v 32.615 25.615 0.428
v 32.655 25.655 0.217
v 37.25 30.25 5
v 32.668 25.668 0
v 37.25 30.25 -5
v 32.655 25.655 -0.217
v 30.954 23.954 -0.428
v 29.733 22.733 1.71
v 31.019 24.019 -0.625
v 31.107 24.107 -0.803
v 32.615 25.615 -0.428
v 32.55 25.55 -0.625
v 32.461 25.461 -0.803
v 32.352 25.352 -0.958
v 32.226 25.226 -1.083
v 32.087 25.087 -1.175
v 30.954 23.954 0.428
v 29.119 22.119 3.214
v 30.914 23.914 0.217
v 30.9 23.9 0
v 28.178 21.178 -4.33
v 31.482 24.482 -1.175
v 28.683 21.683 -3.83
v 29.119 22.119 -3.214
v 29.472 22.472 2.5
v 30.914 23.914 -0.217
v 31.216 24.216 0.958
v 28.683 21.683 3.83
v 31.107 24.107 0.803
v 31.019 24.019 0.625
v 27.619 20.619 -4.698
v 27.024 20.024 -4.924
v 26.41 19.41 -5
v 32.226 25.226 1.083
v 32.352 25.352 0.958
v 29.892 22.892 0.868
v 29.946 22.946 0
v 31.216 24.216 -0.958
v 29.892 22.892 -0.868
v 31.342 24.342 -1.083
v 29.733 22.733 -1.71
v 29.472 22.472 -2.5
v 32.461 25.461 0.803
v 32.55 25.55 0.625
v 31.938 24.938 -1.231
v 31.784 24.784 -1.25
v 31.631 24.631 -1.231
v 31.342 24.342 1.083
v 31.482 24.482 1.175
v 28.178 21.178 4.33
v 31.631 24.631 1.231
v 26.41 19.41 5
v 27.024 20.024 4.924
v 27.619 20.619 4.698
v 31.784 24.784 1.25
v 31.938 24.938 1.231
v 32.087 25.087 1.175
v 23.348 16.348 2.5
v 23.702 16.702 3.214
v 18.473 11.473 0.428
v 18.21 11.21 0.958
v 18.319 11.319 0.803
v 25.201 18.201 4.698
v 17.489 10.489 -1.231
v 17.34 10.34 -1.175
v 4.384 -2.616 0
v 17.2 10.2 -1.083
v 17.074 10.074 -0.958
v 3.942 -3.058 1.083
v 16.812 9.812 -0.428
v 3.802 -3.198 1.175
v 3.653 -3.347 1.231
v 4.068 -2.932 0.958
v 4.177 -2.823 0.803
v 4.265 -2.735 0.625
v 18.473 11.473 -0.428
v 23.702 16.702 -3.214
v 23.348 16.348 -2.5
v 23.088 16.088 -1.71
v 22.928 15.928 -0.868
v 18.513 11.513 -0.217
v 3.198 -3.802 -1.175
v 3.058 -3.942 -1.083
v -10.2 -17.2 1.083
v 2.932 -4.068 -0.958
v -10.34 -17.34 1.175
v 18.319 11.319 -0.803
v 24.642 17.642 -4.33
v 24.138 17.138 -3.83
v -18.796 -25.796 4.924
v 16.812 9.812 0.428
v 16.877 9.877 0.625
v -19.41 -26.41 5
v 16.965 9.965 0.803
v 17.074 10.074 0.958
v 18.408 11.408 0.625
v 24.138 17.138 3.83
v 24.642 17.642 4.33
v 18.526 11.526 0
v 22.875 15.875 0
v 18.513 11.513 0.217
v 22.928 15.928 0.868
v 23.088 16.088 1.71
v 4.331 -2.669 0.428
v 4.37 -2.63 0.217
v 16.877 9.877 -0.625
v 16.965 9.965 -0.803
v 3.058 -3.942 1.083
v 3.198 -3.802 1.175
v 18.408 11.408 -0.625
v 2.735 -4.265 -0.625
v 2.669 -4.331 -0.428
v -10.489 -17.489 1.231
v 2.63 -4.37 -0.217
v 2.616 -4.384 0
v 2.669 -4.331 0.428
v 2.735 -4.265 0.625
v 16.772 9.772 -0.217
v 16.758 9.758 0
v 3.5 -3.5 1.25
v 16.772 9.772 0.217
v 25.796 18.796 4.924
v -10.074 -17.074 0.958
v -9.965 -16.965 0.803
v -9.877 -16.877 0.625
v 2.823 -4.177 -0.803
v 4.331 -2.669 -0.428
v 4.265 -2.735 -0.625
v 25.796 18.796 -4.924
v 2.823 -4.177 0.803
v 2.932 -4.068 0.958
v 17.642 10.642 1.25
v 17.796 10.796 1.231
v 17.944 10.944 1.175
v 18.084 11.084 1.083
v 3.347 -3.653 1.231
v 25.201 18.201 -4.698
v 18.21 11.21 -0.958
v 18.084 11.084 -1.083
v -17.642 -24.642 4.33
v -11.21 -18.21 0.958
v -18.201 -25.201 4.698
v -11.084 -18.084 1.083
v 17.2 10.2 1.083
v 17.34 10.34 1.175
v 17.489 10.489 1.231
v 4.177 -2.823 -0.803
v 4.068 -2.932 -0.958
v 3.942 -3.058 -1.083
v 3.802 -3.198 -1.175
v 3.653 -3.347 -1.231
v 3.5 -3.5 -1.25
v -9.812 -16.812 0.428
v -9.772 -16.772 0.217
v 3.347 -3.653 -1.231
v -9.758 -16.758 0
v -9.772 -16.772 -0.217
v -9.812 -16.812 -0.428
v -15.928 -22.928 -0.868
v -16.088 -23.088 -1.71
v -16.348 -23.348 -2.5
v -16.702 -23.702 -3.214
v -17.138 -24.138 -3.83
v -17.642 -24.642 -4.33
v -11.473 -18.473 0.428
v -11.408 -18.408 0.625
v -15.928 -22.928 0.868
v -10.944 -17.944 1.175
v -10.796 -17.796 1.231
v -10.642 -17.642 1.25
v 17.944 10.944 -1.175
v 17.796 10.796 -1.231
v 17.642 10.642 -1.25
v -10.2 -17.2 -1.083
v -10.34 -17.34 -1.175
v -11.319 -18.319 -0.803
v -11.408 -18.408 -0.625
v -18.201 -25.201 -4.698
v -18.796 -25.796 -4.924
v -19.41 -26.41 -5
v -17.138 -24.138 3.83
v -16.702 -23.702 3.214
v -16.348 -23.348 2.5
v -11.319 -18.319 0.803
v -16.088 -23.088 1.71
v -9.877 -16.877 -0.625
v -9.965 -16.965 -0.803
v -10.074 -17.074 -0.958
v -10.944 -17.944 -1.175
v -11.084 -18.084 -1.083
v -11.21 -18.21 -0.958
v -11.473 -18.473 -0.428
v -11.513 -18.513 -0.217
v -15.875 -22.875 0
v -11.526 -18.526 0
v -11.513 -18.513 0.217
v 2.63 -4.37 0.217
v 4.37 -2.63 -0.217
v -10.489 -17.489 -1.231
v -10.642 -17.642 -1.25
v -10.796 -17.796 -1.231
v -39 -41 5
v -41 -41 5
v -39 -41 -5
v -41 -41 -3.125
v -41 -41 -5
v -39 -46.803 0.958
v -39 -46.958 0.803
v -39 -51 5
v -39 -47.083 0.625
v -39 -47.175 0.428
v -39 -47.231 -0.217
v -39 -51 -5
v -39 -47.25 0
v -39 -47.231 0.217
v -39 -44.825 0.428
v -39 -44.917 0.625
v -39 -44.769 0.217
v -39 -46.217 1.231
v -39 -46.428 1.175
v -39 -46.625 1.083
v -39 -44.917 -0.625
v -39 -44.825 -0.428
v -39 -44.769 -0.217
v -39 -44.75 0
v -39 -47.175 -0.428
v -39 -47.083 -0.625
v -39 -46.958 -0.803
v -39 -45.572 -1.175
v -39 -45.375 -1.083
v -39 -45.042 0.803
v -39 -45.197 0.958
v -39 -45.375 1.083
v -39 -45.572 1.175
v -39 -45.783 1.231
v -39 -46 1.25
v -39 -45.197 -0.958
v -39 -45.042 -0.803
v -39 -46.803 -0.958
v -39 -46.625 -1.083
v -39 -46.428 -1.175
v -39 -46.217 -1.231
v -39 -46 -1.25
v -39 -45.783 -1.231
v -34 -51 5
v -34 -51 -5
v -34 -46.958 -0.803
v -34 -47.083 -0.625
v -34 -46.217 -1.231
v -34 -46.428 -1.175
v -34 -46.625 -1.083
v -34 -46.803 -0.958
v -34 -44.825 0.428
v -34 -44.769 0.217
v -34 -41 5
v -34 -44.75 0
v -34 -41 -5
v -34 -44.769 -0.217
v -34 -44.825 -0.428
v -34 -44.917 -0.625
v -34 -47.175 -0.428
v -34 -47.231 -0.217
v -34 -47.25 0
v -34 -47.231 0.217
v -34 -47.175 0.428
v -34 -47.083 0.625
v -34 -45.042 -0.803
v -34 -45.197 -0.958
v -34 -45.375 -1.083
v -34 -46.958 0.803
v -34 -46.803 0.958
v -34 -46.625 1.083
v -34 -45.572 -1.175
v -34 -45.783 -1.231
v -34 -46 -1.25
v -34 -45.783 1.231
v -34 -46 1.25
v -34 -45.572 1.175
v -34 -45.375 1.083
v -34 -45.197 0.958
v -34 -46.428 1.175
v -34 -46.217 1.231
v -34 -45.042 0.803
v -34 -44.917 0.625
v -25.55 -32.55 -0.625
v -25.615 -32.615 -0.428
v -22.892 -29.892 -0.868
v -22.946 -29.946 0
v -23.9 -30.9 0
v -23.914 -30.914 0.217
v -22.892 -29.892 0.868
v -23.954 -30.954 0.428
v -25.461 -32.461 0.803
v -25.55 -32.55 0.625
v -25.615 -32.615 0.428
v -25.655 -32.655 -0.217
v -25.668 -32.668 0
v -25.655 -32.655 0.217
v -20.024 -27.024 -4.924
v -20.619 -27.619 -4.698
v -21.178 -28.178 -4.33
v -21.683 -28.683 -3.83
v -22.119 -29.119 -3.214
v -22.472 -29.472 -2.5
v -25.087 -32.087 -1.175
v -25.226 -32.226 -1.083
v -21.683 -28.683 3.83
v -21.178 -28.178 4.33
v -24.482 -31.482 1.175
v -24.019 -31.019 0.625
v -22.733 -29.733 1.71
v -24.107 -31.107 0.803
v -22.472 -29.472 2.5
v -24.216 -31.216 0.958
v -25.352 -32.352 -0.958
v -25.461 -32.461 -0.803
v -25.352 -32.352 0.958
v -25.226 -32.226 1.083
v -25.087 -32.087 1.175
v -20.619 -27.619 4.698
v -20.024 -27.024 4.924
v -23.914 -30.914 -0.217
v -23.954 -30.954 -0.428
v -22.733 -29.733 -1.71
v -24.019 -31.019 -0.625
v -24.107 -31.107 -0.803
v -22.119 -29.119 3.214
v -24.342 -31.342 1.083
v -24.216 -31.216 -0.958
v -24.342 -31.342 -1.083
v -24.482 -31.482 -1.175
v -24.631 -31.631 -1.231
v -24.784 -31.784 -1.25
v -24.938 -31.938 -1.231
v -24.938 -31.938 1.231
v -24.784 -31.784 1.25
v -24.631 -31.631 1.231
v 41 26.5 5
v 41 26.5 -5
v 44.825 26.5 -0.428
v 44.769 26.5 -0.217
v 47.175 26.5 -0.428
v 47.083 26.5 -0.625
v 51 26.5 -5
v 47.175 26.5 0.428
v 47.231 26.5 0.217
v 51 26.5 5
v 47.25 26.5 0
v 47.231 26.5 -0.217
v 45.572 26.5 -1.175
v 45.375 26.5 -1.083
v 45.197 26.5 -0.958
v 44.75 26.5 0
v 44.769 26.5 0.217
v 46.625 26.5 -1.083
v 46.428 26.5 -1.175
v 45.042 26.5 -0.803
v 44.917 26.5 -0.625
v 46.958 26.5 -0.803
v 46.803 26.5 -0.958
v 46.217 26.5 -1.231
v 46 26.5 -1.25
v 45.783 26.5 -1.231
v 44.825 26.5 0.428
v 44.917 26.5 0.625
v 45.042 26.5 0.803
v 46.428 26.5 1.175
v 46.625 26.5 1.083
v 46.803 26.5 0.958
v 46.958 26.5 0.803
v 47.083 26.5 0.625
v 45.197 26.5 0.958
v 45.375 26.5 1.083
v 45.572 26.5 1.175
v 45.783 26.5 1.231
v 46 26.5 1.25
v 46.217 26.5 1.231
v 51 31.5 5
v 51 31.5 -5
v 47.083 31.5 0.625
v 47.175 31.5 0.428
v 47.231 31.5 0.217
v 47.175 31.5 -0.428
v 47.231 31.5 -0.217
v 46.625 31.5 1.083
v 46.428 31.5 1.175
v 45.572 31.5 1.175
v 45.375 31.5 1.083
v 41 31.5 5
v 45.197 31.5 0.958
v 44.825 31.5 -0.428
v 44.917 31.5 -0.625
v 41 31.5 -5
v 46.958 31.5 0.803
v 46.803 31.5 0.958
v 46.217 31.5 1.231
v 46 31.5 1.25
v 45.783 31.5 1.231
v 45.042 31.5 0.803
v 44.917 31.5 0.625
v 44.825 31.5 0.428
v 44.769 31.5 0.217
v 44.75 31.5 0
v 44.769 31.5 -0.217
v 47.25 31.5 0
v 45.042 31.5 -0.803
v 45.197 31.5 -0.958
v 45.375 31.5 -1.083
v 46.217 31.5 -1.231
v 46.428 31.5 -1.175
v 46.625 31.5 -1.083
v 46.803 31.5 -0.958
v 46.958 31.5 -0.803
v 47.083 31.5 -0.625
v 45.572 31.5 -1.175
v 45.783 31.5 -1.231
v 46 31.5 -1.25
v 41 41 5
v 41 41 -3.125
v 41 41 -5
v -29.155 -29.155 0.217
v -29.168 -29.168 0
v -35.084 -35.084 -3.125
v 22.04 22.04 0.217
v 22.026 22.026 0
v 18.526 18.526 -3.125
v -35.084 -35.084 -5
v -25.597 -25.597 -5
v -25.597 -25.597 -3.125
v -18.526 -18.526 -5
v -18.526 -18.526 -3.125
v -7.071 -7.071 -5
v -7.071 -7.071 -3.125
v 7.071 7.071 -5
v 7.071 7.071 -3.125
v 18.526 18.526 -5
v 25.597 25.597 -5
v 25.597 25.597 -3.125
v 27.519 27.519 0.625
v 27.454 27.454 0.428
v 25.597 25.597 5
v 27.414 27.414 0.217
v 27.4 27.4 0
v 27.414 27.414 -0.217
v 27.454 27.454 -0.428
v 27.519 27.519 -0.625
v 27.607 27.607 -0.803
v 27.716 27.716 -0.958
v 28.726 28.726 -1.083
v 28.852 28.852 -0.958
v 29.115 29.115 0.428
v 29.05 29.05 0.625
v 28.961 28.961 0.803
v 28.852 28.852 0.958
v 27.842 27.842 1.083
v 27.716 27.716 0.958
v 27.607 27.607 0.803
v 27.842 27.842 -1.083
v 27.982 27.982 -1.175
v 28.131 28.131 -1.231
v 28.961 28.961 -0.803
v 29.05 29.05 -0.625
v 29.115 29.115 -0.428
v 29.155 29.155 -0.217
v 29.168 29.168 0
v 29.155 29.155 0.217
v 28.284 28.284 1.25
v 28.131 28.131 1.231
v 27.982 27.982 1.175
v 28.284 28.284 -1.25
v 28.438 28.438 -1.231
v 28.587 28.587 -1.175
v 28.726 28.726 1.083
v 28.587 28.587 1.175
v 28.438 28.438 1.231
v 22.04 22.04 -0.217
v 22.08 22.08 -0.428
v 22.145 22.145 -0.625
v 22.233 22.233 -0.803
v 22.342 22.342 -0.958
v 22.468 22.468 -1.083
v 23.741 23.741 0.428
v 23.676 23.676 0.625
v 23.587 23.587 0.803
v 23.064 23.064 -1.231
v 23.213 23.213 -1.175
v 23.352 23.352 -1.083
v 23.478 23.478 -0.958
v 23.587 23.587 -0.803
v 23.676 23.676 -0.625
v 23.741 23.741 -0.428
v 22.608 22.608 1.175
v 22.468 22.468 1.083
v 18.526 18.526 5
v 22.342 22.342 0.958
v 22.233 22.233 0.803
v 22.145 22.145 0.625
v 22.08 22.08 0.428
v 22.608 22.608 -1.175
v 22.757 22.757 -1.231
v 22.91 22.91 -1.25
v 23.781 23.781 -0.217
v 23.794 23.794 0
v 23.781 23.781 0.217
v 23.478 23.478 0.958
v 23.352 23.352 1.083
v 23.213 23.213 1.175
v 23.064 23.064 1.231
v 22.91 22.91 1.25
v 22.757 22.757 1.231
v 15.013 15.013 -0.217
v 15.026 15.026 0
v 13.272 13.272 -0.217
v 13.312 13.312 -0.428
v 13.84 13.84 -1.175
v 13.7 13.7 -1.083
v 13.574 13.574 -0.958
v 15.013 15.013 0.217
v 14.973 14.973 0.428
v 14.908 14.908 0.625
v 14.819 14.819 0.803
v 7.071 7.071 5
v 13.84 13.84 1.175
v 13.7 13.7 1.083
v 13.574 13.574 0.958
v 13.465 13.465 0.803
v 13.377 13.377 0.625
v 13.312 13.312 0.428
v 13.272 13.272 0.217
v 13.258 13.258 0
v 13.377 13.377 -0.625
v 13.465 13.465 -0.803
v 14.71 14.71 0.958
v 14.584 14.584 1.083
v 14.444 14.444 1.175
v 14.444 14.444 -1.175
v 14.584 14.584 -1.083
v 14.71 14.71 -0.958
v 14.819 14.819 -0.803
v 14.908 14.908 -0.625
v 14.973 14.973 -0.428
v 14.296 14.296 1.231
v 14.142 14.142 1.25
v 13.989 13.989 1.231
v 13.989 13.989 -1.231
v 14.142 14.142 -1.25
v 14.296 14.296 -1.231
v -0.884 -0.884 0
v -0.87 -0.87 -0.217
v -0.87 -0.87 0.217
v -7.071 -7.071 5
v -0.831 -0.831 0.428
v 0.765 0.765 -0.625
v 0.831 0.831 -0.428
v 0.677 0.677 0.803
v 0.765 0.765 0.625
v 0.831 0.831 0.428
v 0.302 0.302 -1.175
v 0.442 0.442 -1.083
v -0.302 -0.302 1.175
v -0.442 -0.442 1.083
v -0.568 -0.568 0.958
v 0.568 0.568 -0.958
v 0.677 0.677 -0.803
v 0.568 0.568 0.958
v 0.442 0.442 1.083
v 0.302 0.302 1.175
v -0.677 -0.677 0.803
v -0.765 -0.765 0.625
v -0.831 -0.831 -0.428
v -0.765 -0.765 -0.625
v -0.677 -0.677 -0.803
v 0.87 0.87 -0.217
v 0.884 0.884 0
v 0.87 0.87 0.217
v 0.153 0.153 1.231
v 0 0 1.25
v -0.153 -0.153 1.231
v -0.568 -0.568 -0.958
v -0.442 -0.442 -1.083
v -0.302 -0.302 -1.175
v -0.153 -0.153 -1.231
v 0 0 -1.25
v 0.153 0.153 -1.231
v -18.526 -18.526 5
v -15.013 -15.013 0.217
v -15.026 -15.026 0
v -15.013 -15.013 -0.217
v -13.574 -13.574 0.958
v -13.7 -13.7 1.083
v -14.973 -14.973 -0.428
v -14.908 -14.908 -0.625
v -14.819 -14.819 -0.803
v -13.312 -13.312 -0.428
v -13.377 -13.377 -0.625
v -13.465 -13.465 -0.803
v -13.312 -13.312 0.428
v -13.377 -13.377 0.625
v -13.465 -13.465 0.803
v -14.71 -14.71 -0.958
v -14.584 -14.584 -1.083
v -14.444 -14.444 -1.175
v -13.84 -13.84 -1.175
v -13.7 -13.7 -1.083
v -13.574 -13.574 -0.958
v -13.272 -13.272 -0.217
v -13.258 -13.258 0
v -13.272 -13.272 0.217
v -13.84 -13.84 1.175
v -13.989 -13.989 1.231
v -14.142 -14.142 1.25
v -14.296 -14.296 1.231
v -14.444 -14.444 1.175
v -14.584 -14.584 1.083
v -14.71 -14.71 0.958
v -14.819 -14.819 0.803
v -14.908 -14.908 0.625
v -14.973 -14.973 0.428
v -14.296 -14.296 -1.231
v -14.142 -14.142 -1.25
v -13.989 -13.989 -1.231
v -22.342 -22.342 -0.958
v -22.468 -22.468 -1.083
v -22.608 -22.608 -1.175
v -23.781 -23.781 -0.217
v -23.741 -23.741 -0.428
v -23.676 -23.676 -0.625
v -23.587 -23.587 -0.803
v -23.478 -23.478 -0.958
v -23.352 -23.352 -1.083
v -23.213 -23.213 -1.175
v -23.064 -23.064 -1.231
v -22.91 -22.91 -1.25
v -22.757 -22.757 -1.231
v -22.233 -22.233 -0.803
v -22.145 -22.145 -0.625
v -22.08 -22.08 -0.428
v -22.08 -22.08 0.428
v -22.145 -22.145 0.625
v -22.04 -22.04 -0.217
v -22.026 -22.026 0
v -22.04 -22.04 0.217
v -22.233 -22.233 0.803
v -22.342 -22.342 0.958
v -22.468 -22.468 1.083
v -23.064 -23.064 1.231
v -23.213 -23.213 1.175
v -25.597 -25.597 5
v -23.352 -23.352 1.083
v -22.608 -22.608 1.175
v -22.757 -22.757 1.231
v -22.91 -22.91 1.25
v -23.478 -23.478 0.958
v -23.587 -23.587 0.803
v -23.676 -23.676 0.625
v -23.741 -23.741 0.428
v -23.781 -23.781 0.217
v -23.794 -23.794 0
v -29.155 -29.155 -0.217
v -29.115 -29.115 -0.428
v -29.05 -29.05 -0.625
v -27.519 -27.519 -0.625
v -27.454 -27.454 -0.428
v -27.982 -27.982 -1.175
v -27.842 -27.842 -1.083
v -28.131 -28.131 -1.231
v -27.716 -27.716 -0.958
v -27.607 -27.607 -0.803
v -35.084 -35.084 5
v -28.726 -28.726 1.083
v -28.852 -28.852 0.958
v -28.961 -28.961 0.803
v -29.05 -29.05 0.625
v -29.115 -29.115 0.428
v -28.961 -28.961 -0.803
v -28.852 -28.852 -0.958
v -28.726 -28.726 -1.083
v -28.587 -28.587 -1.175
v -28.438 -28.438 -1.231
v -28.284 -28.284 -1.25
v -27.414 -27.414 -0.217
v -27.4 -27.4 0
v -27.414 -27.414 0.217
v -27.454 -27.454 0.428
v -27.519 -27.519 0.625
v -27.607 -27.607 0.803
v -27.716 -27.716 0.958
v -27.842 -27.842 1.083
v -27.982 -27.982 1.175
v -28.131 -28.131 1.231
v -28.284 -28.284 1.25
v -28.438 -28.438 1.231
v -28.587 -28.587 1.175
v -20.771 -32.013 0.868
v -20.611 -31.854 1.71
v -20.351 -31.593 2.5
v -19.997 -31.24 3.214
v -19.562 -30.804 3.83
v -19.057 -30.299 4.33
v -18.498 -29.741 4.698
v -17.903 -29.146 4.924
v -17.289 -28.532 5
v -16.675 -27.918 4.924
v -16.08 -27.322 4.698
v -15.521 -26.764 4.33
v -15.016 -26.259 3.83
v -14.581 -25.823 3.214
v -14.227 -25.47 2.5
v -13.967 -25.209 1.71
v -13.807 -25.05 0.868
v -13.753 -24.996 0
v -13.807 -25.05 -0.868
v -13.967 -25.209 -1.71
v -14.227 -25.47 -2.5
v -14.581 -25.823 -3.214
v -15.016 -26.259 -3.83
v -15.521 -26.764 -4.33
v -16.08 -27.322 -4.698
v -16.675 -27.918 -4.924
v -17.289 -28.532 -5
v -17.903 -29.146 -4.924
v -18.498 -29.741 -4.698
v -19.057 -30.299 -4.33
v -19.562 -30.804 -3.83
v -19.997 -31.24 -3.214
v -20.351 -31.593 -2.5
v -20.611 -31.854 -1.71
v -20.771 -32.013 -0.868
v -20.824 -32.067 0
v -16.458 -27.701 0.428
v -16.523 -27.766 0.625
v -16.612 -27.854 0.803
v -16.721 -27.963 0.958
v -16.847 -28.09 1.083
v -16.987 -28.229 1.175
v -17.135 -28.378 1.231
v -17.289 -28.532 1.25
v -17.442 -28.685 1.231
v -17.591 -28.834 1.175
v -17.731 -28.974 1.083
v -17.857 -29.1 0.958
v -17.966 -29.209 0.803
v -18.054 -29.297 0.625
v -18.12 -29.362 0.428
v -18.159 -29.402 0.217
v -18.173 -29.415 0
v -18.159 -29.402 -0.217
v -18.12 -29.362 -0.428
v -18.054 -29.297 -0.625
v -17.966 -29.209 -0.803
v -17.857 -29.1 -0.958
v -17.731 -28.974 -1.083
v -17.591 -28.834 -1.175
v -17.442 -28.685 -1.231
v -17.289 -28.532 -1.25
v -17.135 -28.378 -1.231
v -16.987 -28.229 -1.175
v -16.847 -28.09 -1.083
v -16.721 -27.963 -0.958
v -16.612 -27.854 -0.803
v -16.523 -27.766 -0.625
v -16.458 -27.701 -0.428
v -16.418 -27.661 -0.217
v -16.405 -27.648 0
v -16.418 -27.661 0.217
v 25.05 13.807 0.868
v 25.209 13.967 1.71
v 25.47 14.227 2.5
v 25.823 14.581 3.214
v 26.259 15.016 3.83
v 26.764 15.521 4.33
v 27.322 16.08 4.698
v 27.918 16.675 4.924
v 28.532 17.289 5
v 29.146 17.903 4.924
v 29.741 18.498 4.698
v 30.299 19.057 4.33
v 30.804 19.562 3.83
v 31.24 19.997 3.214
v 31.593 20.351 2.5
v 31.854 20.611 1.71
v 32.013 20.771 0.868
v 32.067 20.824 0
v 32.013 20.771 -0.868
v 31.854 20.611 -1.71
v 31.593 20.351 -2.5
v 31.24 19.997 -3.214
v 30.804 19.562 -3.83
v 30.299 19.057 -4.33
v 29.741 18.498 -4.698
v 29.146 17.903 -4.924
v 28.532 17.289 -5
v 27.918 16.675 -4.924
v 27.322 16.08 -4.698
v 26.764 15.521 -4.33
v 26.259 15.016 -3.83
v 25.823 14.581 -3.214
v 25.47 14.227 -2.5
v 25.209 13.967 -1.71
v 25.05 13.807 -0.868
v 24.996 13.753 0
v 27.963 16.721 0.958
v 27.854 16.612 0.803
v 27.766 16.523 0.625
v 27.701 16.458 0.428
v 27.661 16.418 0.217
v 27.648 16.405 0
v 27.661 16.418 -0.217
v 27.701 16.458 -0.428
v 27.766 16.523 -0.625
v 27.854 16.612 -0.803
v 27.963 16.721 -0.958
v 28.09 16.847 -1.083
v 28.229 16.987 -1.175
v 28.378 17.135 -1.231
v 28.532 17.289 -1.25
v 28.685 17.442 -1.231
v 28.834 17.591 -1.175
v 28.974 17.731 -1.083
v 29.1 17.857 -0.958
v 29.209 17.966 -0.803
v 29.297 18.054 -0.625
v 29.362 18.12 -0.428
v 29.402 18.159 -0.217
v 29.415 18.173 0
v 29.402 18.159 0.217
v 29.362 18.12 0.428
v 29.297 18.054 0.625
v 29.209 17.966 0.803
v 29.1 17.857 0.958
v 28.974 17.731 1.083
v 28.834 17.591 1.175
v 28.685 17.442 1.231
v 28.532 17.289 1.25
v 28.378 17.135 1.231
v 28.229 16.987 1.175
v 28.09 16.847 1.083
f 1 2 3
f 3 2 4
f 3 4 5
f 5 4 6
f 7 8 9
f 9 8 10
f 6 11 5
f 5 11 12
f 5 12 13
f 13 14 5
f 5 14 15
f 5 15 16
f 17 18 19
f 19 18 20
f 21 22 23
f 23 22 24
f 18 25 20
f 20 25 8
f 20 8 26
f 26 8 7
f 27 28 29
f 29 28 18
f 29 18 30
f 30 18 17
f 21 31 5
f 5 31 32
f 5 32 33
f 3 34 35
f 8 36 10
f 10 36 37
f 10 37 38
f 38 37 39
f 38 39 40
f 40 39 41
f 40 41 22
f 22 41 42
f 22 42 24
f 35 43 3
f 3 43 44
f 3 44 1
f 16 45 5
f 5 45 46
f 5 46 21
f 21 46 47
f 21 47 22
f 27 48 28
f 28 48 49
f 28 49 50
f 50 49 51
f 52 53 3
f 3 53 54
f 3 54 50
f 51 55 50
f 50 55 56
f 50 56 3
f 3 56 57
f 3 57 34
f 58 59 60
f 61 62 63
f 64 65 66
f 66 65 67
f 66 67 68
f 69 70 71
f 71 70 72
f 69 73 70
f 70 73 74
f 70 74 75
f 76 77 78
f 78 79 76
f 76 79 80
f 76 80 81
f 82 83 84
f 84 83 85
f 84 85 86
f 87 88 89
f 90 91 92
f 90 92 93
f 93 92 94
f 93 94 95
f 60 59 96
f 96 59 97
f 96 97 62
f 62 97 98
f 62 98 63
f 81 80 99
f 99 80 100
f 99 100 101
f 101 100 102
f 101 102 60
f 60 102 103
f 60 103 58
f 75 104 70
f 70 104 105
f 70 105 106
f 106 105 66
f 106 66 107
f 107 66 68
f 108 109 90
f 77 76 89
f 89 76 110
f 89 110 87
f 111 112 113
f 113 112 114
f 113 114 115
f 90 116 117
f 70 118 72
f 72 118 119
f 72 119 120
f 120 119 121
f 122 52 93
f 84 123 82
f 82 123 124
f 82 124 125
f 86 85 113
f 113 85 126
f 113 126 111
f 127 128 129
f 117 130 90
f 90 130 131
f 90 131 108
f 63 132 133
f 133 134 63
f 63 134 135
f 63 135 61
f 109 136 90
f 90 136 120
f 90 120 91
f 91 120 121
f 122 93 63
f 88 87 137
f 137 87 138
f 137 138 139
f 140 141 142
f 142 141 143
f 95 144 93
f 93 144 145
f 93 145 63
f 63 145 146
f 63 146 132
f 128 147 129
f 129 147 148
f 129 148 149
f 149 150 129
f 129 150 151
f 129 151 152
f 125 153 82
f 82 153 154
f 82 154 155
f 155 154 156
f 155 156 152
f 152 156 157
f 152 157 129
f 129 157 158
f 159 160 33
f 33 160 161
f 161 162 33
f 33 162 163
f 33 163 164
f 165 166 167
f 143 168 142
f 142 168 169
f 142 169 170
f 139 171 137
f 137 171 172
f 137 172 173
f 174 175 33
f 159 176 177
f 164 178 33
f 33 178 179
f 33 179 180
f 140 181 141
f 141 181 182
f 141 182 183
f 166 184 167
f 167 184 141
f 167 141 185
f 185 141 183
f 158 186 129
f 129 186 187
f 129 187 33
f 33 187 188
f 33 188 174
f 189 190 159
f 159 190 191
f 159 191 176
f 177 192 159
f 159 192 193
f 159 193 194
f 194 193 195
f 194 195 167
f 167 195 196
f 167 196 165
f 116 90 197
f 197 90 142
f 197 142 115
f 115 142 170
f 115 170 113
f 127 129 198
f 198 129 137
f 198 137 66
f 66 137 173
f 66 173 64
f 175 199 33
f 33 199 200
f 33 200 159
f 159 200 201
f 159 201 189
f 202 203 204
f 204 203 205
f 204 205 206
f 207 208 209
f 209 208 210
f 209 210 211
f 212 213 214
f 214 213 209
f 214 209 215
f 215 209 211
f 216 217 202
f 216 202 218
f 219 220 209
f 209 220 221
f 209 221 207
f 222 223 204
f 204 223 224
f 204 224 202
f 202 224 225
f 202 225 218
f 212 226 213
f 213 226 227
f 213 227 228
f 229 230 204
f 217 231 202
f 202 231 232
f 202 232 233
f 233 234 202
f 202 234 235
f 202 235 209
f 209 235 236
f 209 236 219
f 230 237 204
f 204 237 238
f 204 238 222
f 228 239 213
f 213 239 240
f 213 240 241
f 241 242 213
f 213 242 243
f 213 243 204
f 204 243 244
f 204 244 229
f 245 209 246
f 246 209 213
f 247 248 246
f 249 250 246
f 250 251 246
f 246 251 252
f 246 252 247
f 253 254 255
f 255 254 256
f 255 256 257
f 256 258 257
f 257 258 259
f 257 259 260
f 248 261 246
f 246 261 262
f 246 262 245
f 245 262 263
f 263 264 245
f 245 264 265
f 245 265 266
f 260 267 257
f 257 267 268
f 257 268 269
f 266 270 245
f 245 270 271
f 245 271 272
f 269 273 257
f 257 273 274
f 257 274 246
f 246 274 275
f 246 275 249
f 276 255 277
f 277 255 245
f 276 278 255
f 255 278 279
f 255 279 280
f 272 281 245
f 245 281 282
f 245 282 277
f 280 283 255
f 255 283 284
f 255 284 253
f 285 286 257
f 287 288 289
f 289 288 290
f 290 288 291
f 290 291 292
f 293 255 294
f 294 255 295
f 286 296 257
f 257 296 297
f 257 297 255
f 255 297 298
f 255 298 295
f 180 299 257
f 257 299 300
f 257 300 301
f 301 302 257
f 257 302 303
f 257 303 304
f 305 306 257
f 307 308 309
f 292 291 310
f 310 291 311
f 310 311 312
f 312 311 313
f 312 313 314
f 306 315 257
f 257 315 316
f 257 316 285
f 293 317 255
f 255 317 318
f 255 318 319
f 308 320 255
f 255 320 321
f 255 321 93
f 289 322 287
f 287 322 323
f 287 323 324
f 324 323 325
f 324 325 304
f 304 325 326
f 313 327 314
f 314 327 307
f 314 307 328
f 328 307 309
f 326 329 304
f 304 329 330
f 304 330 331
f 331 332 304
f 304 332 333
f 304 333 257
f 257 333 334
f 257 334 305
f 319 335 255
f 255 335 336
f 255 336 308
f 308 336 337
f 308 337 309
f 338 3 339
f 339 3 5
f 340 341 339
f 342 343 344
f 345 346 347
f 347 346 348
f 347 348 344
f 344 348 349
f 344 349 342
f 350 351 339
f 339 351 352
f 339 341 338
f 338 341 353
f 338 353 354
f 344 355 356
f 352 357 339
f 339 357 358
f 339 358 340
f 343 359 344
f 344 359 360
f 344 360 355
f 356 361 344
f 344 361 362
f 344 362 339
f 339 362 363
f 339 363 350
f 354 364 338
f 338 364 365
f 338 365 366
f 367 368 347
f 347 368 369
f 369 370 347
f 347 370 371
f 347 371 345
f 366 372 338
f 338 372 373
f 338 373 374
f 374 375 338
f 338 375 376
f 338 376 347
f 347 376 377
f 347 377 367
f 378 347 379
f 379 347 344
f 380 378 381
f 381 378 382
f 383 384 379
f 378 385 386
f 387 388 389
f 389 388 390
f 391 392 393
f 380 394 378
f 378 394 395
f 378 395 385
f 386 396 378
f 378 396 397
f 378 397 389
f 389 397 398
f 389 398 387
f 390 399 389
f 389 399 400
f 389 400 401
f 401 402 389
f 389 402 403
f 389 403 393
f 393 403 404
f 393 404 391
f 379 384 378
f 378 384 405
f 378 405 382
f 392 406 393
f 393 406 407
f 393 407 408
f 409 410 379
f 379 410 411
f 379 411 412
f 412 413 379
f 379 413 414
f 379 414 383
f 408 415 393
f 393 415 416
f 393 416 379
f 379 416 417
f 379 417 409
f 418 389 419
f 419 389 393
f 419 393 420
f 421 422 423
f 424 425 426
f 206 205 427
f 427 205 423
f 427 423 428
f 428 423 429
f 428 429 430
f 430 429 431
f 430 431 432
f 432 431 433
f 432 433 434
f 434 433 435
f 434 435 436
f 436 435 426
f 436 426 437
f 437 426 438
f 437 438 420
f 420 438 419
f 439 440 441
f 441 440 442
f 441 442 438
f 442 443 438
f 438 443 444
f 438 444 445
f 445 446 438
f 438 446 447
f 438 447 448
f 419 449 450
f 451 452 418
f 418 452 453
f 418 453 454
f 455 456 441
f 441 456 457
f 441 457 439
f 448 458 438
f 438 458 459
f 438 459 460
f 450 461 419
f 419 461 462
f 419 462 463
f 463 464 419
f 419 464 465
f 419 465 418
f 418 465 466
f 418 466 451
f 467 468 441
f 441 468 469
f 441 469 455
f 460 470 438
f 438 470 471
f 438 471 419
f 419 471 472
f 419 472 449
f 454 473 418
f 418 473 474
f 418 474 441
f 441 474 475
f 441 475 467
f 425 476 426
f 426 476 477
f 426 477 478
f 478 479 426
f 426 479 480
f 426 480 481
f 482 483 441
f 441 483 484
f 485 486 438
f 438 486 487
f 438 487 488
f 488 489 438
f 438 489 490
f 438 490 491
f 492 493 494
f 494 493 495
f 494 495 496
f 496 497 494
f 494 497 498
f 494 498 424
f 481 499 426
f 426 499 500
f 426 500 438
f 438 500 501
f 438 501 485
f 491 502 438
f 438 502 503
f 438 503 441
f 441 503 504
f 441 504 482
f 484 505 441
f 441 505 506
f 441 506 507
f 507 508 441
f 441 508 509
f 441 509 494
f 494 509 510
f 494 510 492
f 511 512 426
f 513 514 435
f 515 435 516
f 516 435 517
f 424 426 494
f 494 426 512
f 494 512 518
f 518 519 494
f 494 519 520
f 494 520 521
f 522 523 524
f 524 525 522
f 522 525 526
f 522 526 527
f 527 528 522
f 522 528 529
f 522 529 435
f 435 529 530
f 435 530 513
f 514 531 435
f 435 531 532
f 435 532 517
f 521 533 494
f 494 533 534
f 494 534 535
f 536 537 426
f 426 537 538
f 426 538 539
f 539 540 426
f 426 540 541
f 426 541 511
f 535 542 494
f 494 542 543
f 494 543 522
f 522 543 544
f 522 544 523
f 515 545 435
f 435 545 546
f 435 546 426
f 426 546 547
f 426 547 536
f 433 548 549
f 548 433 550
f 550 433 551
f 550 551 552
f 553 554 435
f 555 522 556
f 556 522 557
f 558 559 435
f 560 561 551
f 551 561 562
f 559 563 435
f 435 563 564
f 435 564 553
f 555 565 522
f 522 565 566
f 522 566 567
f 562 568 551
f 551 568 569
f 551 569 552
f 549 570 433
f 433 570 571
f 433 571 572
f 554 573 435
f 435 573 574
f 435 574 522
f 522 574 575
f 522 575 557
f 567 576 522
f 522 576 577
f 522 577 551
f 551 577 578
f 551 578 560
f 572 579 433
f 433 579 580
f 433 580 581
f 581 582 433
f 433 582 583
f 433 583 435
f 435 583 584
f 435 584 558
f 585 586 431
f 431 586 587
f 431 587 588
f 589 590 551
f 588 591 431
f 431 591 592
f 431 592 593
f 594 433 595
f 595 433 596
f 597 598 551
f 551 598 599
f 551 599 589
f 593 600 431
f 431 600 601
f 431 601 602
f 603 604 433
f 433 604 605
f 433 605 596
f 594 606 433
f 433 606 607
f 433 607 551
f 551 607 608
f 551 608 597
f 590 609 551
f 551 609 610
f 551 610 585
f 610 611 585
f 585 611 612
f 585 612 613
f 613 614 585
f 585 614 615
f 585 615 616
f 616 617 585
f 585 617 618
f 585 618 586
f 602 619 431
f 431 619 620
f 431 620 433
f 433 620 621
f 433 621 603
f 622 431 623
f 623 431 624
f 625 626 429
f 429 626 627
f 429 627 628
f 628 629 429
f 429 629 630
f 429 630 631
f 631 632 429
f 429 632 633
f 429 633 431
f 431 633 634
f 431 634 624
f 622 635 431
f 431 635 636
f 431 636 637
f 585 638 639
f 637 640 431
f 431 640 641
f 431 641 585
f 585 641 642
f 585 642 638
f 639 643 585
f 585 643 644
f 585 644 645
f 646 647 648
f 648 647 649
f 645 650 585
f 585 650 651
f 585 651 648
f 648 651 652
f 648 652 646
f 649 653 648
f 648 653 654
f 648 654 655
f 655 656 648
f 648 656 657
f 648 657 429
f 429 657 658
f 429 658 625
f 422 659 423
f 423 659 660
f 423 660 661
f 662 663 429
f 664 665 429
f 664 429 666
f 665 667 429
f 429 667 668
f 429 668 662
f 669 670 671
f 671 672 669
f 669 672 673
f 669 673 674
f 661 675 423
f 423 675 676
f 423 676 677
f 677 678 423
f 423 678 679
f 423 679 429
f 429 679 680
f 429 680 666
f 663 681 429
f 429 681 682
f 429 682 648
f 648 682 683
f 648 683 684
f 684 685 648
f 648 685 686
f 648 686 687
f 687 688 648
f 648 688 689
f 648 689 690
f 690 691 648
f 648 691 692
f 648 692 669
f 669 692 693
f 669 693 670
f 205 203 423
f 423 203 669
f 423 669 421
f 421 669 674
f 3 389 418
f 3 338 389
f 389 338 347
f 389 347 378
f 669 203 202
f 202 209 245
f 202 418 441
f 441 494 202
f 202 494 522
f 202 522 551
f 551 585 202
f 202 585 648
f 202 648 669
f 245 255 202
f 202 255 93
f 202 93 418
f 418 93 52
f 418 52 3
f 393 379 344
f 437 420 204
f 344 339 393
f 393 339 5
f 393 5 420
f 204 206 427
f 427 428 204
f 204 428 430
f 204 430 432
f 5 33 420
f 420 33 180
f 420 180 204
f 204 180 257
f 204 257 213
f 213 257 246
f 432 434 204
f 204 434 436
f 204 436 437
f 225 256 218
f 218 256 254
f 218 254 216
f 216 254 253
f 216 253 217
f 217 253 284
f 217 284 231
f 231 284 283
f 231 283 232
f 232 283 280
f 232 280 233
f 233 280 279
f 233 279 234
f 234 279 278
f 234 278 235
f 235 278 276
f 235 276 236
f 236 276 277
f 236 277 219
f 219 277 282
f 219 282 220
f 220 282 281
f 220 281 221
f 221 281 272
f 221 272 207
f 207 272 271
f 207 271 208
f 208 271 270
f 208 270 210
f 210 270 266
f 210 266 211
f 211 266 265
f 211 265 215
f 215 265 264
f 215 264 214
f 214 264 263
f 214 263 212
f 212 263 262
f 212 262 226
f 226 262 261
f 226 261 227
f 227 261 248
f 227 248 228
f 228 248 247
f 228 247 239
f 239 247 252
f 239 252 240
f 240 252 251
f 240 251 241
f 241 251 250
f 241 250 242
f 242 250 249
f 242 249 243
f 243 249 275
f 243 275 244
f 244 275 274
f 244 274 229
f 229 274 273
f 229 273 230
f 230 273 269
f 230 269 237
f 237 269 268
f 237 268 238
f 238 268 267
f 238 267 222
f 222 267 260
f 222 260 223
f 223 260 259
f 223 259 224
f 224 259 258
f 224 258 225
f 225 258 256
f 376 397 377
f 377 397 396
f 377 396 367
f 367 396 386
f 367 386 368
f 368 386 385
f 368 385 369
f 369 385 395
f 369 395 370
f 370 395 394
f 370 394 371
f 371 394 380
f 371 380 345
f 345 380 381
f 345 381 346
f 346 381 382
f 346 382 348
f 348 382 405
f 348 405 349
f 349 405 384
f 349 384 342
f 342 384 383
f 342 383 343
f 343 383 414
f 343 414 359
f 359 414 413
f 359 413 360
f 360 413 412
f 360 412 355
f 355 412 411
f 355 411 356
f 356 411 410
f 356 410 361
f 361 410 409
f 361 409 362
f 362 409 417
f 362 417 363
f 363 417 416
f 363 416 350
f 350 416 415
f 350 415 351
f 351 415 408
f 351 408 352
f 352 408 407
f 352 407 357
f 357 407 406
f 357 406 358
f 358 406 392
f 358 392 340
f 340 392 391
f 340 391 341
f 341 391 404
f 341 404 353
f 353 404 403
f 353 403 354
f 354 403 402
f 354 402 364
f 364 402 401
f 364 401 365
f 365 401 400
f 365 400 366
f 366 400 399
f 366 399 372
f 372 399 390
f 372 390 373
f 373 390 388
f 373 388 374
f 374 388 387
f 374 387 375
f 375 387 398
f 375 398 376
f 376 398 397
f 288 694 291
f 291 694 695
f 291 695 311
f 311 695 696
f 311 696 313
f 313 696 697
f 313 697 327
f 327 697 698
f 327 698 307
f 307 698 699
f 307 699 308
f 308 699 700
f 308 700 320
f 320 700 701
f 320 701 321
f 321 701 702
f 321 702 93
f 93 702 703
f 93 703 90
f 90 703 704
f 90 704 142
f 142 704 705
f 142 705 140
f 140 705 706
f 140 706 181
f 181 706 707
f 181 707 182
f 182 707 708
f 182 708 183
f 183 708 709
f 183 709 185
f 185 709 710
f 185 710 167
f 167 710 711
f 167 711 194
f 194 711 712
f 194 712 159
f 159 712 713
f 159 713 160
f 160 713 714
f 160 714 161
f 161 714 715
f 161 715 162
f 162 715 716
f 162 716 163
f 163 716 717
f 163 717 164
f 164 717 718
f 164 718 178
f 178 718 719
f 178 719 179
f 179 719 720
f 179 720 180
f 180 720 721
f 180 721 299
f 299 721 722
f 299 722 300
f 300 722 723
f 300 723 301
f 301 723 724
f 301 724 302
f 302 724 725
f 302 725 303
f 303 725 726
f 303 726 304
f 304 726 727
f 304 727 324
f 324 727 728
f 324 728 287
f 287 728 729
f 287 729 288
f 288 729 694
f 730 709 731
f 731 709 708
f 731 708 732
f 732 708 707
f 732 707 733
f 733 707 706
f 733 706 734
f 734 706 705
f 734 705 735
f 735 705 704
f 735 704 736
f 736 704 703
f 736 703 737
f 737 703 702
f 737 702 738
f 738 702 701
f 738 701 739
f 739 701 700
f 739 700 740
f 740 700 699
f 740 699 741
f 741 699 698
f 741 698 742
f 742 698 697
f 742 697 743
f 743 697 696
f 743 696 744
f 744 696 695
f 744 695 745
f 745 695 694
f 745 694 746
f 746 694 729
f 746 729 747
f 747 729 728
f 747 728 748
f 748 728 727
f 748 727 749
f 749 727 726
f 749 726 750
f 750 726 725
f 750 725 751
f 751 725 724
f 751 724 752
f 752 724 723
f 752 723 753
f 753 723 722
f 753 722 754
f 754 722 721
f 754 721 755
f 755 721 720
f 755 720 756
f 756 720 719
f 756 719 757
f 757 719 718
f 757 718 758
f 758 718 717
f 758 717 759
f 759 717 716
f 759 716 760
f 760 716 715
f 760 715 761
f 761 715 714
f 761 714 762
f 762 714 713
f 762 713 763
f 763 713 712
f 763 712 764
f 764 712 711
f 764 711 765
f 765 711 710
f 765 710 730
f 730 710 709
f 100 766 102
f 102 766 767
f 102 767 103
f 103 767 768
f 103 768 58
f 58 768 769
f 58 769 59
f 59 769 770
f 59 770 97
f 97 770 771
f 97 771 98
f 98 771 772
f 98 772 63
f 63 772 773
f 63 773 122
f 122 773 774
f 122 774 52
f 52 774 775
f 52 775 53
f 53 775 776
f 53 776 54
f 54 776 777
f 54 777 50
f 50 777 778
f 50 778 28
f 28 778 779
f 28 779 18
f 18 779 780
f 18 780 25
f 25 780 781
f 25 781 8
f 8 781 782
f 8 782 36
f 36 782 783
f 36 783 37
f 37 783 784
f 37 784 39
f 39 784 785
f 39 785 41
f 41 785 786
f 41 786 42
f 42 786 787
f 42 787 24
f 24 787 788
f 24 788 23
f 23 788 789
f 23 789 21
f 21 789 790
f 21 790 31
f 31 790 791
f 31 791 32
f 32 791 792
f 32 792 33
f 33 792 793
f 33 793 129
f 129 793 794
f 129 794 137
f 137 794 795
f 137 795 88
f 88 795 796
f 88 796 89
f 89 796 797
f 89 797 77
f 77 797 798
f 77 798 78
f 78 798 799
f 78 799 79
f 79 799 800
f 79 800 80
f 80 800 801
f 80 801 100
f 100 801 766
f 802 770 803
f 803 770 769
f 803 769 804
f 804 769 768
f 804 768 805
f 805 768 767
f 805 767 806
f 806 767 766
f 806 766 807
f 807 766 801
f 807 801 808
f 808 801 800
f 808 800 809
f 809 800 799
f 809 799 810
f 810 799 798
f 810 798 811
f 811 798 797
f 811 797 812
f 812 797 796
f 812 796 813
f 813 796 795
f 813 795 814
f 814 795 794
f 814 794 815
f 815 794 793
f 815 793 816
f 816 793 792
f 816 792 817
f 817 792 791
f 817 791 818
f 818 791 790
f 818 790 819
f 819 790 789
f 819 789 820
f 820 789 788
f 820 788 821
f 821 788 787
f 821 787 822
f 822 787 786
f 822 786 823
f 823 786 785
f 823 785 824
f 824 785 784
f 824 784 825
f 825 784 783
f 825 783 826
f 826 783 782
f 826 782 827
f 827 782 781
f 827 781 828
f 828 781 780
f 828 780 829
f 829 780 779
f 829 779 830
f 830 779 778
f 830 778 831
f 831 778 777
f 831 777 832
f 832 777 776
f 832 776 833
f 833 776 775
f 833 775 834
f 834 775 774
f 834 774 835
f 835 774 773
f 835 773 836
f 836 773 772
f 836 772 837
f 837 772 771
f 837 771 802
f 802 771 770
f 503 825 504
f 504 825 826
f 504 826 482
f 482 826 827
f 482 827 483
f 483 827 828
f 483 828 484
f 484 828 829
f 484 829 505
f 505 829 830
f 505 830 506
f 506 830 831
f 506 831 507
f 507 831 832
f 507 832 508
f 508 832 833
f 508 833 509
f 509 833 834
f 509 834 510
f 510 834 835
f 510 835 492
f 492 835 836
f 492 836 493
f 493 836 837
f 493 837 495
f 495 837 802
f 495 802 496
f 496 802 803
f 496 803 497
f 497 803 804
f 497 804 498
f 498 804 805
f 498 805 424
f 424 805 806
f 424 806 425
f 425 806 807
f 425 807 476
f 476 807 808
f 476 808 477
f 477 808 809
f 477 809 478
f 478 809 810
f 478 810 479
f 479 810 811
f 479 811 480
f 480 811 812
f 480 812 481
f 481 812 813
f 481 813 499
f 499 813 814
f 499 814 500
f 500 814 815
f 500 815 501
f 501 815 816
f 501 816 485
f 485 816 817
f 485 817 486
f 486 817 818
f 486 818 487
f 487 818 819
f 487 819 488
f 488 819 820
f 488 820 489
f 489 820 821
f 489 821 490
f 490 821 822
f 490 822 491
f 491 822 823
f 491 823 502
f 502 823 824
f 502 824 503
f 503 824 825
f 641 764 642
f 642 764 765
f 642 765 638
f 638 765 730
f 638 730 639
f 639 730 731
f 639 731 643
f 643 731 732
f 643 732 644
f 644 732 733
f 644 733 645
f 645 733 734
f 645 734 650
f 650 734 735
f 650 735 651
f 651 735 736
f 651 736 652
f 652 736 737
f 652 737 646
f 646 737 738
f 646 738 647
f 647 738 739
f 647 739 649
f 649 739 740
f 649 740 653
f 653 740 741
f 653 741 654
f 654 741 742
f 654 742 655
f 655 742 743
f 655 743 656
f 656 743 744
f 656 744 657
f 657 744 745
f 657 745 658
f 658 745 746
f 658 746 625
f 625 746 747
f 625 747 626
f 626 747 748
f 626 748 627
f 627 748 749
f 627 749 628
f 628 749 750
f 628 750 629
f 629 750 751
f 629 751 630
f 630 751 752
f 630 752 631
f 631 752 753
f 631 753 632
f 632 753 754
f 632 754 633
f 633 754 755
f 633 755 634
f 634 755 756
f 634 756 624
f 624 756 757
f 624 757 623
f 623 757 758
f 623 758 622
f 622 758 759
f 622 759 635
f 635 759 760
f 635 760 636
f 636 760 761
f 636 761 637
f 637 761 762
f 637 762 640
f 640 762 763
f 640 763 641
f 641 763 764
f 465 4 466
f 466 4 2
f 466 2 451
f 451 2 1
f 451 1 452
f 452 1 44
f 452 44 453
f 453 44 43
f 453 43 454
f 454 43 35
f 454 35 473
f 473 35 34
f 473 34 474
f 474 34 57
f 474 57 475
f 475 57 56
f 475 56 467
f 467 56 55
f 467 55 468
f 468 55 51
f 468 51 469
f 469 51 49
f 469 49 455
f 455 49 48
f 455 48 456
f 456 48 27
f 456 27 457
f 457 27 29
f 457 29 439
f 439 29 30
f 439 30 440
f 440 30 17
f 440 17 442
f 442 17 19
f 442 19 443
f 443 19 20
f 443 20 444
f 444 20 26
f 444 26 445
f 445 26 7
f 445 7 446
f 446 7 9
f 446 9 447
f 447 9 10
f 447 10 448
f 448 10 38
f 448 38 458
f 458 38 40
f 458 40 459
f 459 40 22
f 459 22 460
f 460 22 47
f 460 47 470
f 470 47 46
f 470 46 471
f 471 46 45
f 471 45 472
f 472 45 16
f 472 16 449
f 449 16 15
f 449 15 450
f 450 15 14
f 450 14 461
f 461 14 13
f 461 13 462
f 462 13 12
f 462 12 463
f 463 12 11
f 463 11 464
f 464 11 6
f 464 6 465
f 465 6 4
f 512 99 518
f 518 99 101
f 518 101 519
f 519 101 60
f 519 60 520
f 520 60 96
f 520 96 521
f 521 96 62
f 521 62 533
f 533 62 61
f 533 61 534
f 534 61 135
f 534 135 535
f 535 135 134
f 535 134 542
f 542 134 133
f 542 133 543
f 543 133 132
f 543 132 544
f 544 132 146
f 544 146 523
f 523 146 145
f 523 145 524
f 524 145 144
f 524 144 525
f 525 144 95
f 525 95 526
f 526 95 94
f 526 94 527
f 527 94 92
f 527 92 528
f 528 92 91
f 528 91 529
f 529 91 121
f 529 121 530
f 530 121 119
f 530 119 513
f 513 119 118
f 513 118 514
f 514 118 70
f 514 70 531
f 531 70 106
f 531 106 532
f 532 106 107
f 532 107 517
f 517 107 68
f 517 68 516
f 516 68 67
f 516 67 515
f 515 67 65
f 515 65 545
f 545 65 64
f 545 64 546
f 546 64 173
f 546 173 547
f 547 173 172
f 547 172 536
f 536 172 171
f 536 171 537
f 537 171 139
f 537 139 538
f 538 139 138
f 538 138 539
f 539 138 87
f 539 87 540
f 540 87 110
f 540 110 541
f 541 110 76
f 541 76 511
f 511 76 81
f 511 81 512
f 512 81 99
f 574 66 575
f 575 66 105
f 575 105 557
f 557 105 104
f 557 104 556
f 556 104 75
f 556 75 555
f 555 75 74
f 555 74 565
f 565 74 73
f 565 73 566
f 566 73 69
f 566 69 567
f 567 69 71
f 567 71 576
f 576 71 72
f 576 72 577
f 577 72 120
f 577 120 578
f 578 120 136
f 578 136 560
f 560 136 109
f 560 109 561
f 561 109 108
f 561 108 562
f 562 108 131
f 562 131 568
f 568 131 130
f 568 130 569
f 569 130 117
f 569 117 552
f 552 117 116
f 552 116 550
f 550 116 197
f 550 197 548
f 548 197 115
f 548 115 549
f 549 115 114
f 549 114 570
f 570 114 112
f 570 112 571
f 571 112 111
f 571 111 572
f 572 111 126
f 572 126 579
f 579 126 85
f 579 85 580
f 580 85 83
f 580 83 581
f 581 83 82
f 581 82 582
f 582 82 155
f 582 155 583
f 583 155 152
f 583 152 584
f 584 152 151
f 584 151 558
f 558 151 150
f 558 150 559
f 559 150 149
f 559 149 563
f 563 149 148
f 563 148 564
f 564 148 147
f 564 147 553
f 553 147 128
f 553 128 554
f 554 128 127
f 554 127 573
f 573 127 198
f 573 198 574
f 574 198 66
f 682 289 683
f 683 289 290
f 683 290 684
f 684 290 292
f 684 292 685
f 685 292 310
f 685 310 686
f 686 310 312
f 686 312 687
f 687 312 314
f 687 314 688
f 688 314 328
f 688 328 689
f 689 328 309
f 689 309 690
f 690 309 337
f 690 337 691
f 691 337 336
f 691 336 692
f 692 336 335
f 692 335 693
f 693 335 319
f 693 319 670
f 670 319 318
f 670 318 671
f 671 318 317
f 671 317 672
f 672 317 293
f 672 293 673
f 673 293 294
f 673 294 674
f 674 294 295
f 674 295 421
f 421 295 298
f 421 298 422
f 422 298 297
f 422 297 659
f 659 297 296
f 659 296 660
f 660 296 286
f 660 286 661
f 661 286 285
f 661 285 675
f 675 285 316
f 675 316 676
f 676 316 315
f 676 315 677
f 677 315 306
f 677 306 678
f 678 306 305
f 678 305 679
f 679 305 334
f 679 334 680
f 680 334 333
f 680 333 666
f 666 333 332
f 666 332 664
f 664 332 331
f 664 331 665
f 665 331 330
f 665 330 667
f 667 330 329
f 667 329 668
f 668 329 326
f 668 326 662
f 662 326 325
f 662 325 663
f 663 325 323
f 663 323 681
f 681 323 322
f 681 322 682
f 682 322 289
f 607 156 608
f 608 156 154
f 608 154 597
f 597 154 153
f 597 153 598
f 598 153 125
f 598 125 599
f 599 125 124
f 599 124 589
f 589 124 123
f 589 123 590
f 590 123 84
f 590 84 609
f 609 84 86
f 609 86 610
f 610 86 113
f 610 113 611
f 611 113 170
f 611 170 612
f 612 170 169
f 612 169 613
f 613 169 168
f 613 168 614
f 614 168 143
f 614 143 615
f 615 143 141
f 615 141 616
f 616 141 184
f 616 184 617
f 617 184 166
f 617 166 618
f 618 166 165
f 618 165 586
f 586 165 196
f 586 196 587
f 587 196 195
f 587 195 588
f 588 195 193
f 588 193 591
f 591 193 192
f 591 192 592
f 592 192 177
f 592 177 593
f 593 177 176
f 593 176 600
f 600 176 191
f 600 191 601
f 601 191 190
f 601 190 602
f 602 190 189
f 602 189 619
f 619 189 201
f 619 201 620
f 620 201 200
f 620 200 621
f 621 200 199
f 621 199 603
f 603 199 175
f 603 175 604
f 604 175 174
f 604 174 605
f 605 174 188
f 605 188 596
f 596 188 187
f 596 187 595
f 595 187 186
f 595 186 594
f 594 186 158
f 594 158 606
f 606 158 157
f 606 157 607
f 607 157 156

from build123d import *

# Parameters (mm, degrees)
MAIN_DEPTH         = 5
SKETCH2_R          = 1.25
FIXHOLE1_DEPTH     = 83
SKETCH3_R          = 1.25
FIXHOLE2_DEPTH     = 83.5
SKETCH7_R          = 5
BOARDSUPPORT_DEPTH = 3
SKETCH8_R          = 1.25
HOLEFIX_DEPTH      = 66.932503526
SKETCH6_R          = 1.25
CUT_EXTRUDE2_DEPTH = 63.932503526
LPATTERN1_COUNT    = 5
LPATTERN1_PITCH    = 20


with BuildPart() as part:
    # Sketch1 → Main (new body, symmetric)
    with BuildSketch(Plane.XY):
        Polygon((-41, -41), (41, 41), (41, 31.5), (51, 31.5), (51, 26.5), (41, 26.5), (37.25, 30.25), (-34, -41), (-34, -51), (-39, -51), (-39, -41), align=None)
    extrude(amount=MAIN_DEPTH, both=True)

    # Sketch2 → FixHole1 (cut, through all)
    with BuildSketch(Plane(origin=(41, 0, 0), x_dir=(0, 0, -1), z_dir=(1, 0, 0))):
        with Locations((0, -46)):
            Circle(SKETCH2_R)
    extrude(amount=-FIXHOLE1_DEPTH, mode=Mode.SUBTRACT)

    # Sketch3 → FixHole2 (cut, through all)
    with BuildSketch(Plane(origin=(0, 31.5, 0), x_dir=(-1, 0, 0), z_dir=(0, -1, 0))):
        with Locations((-46, 0)):
            Circle(SKETCH3_R)
    extrude(amount=FIXHOLE2_DEPTH, mode=Mode.SUBTRACT)

    # Sketch7 → BoardSupport (add)
    with BuildSketch(Plane(origin=(3.5, -3.5, 0), x_dir=(0, 0, 1), z_dir=(-0.707106781, 0.707106781, 0))):
        with Locations((0, -32.4)):
            Circle(SKETCH7_R)
        with Locations((0, 32.4)):
            Circle(SKETCH7_R)
    extrude(amount=-BOARDSUPPORT_DEPTH)

    # Sketch8 → HoleFix (cut, through all)
    with BuildSketch(Plane(origin=(5.621320344, -5.621320344, 0), x_dir=(0, 0, -1), z_dir=(0.707106781, -0.707106781, 0))):
        with Locations((0, 32.4)):
            Circle(SKETCH8_R)
        with Locations((0, -32.4)):
            Circle(SKETCH8_R)
    extrude(amount=-HOLEFIX_DEPTH, mode=Mode.SUBTRACT)

    # Sketch6 → Cut-Extrude2 (cut, through all)
    with BuildSketch(Plane(origin=(3.5, -3.5, 0), x_dir=(0, 0, 1), z_dir=(-0.707106781, 0.707106781, 0))):
        with Locations((0, 40)):
            Circle(SKETCH6_R)
    cut_extrude2 = extrude(amount=CUT_EXTRUDE2_DEPTH, mode=Mode.SUBTRACT)

    # LPattern1: Cut-Extrude2 ×5
    with Locations(*[Vector(-0.707106781, -0.707106781, 0) * (i * LPATTERN1_PITCH) for i in range(1, LPATTERN1_COUNT)]):
        add(cut_extrude2, mode=Mode.SUBTRACT)


solid = part.part
